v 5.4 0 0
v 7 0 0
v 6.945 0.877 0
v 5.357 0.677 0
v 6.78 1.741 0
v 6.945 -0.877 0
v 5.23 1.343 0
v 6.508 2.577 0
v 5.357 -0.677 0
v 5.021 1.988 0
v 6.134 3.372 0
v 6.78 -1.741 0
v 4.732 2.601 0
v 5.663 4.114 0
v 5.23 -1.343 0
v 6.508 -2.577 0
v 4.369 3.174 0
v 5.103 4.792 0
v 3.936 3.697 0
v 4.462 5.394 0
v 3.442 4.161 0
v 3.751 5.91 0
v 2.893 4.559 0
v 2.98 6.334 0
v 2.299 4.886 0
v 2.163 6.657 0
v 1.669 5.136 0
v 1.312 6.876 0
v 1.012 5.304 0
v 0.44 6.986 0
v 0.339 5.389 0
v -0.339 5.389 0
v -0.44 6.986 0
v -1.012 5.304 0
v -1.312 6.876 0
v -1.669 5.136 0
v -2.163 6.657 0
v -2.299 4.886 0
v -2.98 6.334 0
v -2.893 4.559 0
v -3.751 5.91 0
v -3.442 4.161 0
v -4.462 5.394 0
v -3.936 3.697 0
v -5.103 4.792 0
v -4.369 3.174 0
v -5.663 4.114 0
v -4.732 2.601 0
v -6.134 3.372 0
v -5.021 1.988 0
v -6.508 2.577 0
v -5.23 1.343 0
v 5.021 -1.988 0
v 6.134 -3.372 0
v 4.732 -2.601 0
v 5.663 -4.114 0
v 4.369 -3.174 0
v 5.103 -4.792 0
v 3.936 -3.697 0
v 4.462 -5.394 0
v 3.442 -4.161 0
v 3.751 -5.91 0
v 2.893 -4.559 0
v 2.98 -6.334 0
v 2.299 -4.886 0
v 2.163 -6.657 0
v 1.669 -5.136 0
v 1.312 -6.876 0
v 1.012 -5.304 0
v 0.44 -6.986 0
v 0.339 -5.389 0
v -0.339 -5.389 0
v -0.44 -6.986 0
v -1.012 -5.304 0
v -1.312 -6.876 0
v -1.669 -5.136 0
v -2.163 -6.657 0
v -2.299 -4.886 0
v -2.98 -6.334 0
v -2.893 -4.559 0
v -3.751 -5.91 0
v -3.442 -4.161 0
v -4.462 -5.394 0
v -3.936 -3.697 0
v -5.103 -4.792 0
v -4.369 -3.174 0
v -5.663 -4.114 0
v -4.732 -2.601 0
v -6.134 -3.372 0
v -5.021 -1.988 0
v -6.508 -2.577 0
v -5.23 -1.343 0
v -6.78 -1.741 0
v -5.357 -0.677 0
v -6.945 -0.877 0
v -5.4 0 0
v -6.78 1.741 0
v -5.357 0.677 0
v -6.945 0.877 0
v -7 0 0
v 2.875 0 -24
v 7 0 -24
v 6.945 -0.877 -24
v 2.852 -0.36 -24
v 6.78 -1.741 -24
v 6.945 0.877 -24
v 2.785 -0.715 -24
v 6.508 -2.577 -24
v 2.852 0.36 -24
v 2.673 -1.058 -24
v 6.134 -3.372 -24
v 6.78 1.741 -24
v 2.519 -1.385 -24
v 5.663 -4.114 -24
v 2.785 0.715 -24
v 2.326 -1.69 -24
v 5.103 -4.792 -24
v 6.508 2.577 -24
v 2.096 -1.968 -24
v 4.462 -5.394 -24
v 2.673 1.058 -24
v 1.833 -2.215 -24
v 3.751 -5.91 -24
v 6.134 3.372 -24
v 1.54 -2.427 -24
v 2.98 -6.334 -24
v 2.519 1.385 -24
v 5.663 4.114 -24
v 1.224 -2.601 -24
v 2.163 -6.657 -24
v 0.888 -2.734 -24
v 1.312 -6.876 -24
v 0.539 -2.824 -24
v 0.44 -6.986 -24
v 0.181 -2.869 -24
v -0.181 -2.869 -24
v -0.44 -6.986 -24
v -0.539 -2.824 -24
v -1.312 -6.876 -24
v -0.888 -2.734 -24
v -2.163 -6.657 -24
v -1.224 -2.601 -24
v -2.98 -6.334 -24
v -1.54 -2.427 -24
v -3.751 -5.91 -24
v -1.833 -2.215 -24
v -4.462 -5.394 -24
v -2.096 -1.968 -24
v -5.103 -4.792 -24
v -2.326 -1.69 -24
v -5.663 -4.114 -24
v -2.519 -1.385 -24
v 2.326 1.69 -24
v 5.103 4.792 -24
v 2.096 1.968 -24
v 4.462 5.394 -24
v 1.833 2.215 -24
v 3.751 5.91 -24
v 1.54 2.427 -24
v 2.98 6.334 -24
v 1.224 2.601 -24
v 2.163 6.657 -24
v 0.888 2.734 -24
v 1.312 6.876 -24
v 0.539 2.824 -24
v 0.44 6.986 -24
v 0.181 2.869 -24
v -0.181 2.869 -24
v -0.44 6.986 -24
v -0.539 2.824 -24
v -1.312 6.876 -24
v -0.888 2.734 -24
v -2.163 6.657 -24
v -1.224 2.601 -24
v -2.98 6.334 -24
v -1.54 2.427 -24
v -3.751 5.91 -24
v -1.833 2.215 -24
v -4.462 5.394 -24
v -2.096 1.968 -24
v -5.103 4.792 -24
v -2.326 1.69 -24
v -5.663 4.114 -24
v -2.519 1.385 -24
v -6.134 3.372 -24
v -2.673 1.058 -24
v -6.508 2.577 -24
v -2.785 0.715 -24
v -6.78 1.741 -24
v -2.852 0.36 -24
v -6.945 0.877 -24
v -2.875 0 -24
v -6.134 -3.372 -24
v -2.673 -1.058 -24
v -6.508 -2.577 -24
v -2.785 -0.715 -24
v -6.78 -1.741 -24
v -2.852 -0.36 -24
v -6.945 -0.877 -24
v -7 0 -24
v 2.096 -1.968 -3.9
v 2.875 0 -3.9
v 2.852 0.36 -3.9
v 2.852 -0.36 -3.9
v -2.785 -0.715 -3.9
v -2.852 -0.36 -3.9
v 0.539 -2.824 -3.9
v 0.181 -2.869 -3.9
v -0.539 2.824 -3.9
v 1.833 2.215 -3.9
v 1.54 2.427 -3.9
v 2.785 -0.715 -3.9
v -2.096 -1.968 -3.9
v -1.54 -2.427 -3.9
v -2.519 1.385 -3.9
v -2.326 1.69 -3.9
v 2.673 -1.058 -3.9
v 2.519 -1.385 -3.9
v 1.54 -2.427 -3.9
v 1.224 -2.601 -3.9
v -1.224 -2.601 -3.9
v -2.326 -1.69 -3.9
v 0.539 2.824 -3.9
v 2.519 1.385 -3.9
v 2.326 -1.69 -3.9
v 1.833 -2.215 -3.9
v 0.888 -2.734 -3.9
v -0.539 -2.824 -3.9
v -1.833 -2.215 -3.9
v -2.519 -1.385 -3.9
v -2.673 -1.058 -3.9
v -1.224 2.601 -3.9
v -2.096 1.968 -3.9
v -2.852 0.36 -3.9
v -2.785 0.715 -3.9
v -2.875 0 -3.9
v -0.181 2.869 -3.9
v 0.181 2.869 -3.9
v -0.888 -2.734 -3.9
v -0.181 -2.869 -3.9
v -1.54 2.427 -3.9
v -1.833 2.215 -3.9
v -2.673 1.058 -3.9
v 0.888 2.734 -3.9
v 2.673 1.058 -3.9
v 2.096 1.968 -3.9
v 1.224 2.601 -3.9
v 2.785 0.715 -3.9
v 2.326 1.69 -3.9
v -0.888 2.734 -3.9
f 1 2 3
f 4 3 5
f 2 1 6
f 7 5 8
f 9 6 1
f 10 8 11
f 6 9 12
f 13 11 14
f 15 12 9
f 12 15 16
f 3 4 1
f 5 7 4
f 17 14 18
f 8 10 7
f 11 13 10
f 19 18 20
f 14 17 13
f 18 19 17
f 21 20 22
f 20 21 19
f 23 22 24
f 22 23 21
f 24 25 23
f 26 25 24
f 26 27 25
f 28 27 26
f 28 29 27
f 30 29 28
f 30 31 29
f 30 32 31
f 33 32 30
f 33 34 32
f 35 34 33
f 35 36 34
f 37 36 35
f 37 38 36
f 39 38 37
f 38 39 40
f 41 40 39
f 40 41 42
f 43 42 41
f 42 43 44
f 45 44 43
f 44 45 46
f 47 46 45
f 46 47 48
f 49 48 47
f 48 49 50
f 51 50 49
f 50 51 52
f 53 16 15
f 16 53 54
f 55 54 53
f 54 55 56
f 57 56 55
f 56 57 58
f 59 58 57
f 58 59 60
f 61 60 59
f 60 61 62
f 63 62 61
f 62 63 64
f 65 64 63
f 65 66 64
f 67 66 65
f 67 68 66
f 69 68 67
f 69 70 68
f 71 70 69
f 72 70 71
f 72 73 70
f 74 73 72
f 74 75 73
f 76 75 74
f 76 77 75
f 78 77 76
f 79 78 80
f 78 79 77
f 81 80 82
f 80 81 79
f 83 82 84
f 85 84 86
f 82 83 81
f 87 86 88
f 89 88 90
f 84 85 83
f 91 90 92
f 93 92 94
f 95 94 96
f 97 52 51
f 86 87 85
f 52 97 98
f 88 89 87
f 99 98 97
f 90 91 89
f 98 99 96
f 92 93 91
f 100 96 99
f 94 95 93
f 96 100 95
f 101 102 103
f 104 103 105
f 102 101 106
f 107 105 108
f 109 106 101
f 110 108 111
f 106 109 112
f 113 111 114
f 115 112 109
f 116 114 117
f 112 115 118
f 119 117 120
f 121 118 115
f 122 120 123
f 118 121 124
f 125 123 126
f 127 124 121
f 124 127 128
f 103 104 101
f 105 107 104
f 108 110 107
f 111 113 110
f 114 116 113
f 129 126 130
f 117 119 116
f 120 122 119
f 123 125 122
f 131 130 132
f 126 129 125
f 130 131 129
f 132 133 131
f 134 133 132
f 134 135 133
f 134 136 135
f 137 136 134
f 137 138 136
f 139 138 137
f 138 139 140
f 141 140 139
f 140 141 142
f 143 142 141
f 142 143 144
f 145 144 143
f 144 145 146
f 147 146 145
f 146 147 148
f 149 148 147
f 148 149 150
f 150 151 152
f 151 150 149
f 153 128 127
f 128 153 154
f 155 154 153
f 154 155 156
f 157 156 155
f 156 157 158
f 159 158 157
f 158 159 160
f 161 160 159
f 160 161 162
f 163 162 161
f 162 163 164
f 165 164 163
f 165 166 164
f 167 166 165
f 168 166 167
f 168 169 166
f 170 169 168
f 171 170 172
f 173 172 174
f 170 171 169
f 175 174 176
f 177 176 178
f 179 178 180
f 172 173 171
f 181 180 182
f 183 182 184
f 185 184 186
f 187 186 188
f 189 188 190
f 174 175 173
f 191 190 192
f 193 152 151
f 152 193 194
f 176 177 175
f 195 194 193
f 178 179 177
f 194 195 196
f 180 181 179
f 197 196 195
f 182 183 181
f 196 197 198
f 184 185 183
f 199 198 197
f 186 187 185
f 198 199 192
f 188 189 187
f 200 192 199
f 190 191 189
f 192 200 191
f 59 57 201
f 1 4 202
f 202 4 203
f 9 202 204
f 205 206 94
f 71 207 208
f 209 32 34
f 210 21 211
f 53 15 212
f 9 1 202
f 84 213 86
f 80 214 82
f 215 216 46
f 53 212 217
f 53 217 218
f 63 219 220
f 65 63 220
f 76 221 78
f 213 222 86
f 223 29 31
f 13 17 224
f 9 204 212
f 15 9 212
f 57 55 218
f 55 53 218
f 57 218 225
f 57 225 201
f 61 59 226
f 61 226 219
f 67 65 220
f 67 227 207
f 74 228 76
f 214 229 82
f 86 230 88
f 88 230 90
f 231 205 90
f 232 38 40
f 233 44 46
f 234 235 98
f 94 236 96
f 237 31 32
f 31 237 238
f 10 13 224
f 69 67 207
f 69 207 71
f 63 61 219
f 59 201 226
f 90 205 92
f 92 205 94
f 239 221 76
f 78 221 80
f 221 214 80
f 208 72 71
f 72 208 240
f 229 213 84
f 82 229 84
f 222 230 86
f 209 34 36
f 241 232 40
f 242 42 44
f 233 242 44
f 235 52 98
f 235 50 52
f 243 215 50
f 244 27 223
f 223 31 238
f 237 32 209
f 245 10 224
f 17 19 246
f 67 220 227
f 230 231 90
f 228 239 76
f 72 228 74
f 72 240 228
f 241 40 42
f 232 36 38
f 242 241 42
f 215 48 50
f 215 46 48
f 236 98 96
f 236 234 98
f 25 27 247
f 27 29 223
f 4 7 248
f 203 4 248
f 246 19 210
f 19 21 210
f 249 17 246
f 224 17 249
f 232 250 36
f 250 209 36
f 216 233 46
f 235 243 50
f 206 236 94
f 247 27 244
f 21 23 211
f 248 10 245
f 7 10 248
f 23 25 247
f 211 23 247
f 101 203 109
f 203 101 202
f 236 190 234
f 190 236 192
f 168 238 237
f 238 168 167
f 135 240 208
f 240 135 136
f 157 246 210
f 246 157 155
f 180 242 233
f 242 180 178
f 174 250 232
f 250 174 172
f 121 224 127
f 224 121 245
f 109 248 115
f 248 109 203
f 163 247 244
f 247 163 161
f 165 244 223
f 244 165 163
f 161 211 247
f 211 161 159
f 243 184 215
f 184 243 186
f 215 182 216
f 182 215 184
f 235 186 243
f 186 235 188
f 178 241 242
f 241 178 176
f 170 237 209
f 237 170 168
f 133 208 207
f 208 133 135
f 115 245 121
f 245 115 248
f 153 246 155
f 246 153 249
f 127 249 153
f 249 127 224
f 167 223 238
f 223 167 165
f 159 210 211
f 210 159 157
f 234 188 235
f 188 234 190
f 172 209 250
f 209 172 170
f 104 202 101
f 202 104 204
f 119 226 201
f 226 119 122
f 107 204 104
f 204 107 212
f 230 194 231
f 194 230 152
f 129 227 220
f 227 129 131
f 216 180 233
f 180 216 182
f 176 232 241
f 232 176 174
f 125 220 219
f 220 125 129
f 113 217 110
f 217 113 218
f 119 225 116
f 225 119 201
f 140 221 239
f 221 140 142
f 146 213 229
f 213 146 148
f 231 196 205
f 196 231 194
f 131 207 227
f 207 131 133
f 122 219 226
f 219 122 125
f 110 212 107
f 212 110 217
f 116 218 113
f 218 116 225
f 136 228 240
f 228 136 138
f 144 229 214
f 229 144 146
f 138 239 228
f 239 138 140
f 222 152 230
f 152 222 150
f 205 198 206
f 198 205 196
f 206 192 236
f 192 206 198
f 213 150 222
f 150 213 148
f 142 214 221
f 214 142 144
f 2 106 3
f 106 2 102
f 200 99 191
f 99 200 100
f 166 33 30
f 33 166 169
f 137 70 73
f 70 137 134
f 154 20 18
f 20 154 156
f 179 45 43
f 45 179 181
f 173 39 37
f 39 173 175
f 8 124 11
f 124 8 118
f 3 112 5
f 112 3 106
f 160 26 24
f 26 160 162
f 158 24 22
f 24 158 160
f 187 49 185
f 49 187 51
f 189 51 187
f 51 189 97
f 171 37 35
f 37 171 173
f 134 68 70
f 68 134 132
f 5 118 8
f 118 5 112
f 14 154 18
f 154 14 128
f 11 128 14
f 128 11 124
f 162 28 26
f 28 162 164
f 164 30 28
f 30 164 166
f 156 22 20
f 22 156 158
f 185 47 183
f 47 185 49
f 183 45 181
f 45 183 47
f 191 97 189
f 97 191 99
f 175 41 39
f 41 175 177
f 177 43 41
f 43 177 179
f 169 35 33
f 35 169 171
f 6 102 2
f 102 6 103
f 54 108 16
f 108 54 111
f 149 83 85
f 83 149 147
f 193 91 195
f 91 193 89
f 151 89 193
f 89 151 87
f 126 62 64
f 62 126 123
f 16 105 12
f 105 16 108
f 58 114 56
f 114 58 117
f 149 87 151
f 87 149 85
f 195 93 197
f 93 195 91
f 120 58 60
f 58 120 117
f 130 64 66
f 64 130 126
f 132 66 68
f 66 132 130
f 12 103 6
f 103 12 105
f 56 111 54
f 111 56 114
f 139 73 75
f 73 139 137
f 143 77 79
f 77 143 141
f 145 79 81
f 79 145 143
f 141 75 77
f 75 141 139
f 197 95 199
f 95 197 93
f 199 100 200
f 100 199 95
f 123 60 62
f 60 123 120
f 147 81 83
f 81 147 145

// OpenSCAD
$fn = 50;


difference() {
	union() {
		translate(v = [0, 0, -24.0000000000]) {
			cylinder(h = 24, r = 7.0000000000);
		}
		cylinder(h = 0, r = 10.0000000000);
	}
	union() {
		translate(v = [0, 0, 0]) {
			rotate(a = [0, 0, 0]) {
				difference() {
					union() {
						#translate(v = [0, 0, -24.0000000000]) {
							cylinder(h = 24, r = 2.6000000000);
						}
						#translate(v = [0, 0, -3.9000000000]) {
							cylinder(h = 3.9000000000, r = 7.0000000000, r1 = 2.8750000000, r2 = 5.4000000000);
						}
						#translate(v = [0, 0, -24.0000000000]) {
							cylinder(h = 24, r = 2.8750000000);
						}
						#translate(v = [0, 0, -24.0000000000]) {
							cylinder(h = 24, r = 2.6000000000);
						}
					}
					union();
				}
			}
		}
	}
}
